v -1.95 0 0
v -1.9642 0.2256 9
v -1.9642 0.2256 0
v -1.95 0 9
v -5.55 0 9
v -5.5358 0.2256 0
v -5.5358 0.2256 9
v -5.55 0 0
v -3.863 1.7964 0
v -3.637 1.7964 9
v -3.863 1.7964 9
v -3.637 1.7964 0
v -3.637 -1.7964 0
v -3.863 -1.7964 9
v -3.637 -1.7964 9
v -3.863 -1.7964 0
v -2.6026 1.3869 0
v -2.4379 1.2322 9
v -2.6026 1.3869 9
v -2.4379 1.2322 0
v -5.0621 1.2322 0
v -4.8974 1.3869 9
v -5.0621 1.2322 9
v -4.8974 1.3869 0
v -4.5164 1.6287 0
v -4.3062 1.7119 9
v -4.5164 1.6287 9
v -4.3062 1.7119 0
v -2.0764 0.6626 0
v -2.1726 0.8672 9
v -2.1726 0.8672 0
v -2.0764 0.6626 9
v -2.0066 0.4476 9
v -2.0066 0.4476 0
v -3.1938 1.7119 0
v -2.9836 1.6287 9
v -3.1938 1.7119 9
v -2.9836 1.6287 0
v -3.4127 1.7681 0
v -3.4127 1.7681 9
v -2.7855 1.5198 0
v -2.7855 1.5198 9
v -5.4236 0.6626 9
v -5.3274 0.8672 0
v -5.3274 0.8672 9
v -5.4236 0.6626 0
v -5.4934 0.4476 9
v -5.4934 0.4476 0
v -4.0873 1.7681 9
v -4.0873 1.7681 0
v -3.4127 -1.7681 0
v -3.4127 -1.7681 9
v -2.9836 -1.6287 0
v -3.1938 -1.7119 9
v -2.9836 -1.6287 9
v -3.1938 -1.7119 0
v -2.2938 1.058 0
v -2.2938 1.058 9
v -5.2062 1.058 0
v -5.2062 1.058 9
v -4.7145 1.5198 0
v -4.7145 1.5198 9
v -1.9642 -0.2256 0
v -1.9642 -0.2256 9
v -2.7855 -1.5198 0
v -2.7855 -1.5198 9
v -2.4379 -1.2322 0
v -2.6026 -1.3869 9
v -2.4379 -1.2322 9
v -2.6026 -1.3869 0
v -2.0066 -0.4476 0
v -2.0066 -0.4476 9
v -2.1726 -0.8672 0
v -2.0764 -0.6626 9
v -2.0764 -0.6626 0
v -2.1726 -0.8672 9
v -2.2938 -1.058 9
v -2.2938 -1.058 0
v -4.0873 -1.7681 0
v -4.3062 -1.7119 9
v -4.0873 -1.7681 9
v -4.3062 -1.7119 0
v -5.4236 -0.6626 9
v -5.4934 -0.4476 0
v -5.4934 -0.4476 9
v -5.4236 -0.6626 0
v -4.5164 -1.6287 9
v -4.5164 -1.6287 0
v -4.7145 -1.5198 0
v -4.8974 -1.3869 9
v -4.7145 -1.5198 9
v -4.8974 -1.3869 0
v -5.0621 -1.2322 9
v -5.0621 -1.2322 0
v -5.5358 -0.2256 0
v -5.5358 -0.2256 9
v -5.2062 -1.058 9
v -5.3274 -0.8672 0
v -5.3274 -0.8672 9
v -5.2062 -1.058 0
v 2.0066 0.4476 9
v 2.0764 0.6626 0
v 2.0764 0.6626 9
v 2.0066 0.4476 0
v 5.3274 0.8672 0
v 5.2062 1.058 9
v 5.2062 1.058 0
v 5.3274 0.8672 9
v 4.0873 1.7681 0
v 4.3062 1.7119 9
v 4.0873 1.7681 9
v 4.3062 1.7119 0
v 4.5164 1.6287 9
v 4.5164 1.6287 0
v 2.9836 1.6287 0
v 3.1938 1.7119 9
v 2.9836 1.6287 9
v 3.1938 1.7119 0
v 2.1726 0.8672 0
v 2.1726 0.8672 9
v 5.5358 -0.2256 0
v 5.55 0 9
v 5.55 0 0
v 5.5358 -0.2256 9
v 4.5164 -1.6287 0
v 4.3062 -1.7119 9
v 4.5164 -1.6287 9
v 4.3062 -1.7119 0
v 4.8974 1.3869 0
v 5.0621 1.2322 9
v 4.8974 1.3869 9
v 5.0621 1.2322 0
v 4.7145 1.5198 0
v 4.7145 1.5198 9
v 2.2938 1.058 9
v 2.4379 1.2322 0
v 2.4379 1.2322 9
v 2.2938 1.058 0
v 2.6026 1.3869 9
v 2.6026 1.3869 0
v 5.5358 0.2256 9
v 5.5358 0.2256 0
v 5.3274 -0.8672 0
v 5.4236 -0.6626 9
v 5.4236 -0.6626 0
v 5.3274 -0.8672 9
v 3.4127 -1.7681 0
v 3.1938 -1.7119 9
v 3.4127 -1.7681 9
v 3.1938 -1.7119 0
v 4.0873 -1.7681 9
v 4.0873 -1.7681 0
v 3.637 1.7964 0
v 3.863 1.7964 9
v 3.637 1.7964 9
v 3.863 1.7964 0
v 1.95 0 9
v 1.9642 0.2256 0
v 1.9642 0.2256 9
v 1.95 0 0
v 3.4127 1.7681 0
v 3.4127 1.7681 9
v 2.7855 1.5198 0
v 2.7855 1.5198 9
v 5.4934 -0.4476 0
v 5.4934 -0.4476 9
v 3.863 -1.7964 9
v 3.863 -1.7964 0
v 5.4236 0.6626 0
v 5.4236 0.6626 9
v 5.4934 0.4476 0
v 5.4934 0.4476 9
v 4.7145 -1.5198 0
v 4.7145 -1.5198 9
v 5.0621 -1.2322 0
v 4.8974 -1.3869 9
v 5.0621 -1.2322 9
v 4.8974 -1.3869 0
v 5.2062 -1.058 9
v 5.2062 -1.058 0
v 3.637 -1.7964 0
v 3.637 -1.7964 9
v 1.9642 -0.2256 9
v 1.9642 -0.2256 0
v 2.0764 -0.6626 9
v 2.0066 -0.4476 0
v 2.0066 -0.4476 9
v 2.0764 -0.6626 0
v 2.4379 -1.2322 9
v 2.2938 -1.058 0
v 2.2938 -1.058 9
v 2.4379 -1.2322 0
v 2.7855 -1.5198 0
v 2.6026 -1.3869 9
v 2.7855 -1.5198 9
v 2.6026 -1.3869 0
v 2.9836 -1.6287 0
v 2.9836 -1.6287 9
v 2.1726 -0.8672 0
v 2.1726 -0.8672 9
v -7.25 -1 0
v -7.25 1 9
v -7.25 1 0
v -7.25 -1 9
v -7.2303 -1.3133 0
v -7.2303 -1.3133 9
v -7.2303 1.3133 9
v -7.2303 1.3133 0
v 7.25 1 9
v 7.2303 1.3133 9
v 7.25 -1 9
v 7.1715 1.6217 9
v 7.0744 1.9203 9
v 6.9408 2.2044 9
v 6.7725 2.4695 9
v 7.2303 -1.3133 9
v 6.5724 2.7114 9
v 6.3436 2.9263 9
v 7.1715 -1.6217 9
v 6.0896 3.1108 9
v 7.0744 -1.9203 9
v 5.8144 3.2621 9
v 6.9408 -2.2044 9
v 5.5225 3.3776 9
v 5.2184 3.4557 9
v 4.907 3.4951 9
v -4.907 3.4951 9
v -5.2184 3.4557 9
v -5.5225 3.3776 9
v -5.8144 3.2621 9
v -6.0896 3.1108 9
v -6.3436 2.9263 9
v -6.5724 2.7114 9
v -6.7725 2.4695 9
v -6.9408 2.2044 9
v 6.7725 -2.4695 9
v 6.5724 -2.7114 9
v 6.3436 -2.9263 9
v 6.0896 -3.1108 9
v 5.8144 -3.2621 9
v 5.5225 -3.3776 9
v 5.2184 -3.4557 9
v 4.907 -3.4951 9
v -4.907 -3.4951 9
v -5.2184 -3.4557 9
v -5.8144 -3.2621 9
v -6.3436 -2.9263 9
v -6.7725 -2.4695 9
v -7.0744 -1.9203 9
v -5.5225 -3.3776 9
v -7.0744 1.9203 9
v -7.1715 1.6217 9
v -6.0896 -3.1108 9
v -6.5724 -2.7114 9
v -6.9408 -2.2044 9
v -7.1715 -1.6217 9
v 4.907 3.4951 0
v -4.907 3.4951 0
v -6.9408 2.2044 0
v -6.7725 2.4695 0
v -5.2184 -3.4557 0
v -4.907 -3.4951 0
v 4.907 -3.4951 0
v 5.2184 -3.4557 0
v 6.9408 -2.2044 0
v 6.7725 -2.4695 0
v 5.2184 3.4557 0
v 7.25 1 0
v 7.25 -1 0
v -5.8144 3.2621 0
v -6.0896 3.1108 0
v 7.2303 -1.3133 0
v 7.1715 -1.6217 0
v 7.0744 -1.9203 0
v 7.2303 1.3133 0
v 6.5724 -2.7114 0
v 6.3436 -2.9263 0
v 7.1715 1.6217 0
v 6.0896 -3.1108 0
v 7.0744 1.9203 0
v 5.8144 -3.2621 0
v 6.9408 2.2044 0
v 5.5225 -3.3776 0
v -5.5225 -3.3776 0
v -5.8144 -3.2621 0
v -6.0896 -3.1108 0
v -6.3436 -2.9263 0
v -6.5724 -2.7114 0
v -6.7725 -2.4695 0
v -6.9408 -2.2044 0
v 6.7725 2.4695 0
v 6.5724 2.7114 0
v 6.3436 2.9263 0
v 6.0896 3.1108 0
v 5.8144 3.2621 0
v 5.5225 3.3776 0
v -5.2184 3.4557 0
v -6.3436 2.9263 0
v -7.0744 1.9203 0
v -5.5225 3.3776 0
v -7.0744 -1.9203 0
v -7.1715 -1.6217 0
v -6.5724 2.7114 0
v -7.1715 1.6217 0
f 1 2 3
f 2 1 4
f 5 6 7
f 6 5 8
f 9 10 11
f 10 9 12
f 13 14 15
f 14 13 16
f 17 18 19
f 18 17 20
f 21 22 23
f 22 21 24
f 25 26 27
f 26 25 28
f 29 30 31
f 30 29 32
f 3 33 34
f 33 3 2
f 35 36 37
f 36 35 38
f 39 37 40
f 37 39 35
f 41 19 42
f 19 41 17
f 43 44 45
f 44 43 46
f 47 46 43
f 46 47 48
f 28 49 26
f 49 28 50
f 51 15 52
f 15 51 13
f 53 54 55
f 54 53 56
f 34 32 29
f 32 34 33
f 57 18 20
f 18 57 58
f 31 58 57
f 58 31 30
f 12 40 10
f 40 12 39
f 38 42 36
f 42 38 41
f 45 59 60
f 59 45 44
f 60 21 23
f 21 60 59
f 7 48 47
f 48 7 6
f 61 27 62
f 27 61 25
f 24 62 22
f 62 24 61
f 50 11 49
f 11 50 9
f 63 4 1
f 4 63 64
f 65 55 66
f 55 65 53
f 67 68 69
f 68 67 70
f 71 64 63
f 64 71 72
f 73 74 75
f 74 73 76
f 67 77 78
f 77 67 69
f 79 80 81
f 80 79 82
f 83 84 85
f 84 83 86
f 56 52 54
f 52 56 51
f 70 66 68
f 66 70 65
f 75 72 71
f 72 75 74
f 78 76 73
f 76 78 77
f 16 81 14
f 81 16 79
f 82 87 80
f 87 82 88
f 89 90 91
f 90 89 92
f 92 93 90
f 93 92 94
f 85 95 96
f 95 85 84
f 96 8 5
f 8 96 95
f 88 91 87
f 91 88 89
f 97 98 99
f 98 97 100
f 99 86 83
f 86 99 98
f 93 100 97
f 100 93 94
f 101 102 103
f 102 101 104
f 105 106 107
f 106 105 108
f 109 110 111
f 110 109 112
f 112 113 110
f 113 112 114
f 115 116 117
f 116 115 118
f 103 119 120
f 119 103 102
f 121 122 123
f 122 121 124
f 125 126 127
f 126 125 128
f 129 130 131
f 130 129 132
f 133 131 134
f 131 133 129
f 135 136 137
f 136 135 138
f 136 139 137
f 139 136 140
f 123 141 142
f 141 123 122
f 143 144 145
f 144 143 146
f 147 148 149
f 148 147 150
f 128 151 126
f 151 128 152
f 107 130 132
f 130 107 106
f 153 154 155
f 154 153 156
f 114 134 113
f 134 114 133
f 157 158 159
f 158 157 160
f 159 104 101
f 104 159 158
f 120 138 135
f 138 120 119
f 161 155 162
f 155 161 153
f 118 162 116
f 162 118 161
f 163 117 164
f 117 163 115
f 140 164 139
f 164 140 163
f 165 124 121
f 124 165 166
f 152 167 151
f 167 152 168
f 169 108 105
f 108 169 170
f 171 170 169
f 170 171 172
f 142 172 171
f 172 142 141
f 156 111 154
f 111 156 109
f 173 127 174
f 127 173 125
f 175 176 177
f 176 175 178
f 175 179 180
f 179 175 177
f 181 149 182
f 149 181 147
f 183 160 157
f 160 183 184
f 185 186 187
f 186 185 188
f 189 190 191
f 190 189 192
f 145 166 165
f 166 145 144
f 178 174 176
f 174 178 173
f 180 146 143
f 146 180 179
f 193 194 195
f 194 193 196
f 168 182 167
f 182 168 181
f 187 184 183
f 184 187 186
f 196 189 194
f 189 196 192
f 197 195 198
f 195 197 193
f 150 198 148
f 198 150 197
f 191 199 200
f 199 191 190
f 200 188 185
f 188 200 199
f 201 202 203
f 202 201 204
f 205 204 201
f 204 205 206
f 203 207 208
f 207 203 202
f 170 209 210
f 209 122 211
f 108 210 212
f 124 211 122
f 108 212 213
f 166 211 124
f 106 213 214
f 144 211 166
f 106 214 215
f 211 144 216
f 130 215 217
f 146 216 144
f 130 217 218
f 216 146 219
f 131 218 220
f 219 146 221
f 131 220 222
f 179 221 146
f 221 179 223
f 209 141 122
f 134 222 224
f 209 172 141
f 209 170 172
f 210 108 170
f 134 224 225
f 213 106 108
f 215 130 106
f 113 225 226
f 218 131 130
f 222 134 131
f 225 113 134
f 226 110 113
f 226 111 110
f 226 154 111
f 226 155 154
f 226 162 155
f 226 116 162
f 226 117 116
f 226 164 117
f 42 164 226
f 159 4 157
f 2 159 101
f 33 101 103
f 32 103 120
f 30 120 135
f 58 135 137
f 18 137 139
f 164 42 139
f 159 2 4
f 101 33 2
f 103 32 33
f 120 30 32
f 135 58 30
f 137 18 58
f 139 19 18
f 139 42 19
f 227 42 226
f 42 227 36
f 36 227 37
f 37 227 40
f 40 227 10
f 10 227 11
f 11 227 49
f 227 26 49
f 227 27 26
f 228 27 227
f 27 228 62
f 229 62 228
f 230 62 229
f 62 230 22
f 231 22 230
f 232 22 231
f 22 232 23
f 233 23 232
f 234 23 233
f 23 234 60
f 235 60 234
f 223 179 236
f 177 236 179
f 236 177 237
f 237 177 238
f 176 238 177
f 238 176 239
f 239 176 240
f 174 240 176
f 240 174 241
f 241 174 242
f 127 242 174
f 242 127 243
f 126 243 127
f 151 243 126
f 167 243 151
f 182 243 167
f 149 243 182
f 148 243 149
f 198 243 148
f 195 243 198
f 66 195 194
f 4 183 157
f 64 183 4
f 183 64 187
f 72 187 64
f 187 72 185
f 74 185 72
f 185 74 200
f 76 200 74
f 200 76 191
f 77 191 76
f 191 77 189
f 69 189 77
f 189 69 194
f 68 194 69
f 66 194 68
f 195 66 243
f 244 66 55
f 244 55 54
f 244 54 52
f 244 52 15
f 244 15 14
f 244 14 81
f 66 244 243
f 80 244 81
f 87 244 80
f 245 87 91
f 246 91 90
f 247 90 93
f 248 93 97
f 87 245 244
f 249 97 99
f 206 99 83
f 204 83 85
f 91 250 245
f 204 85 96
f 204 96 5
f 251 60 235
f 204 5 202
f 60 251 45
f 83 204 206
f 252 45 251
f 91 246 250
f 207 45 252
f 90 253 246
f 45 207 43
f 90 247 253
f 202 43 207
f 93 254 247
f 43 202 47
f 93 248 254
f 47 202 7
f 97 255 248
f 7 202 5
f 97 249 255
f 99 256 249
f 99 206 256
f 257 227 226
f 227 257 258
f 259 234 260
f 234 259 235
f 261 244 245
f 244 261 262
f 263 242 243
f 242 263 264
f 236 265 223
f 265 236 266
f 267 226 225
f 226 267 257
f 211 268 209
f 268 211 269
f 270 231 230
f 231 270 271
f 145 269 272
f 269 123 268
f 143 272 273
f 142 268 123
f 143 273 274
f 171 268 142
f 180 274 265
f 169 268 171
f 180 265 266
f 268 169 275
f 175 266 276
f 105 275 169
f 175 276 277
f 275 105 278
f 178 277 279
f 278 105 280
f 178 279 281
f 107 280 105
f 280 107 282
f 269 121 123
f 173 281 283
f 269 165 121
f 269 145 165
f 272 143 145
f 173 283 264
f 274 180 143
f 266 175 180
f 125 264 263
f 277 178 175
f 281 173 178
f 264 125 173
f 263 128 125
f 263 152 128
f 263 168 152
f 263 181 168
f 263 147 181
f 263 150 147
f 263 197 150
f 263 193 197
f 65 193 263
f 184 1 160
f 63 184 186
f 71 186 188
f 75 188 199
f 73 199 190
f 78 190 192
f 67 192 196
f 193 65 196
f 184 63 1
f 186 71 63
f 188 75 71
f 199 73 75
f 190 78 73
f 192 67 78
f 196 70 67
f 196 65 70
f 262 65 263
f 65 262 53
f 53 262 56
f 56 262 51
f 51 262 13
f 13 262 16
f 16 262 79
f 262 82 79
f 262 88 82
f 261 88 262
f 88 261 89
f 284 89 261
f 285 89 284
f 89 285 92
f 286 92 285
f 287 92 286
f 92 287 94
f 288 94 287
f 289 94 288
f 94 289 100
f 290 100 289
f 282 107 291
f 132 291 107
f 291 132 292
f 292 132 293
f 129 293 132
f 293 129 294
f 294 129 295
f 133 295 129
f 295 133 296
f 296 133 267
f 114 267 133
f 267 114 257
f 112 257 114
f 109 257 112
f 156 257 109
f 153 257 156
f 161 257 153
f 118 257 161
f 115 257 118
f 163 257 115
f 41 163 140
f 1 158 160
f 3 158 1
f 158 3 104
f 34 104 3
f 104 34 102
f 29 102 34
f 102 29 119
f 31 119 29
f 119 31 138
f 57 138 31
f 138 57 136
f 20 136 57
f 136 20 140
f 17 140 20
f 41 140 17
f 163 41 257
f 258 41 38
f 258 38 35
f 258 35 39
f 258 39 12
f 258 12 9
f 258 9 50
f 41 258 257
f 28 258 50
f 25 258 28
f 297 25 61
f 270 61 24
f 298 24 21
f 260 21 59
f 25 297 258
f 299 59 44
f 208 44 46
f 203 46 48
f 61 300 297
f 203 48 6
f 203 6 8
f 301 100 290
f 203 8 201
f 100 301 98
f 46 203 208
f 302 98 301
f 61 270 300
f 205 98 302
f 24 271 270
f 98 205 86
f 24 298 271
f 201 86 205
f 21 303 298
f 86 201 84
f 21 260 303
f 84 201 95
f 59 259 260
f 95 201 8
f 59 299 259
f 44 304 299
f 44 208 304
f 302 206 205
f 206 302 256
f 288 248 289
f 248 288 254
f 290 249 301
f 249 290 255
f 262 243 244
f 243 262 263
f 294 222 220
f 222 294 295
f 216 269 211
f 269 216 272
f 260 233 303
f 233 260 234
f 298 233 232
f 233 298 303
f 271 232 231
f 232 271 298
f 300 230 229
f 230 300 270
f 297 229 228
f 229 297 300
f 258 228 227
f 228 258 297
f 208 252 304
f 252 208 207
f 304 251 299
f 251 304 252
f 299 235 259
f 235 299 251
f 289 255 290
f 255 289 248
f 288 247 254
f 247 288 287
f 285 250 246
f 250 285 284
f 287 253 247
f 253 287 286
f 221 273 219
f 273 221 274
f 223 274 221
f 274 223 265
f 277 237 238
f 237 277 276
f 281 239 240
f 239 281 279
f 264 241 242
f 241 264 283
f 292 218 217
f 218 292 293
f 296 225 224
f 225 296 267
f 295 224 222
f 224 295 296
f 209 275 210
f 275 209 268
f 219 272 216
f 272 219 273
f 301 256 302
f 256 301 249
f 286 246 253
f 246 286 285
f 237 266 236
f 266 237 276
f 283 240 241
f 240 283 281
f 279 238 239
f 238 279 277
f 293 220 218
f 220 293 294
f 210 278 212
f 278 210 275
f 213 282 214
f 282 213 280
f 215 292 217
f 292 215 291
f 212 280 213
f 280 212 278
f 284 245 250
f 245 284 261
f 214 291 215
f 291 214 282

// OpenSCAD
$fn = 50;


difference() {
	union() {
		translate(v = [0, 0, 0]) {
			rotate(a = [0, 0, 0]) {
				hull() {
					translate(v = [-4.7500000000, 1.0000000000, 0]) {
						rotate(a = [0, 0, 0]) {
							translate(v = [0, 0, 0]) {
								rotate(a = [0, 0, 0]) {
									cylinder(h = 9, r = 2.5000000000);
								}
							}
						}
					}
					translate(v = [4.7500000000, 1.0000000000, 0]) {
						rotate(a = [0, 0, 0]) {
							translate(v = [0, 0, 0]) {
								rotate(a = [0, 0, 0]) {
									cylinder(h = 9, r = 2.5000000000);
								}
							}
						}
					}
					translate(v = [-4.7500000000, -1.0000000000, 0]) {
						rotate(a = [0, 0, 0]) {
							translate(v = [0, 0, 0]) {
								rotate(a = [0, 0, 0]) {
									cylinder(h = 9, r = 2.5000000000);
								}
							}
						}
					}
					translate(v = [4.7500000000, -1.0000000000, 0]) {
						rotate(a = [0, 0, 0]) {
							translate(v = [0, 0, 0]) {
								rotate(a = [0, 0, 0]) {
									cylinder(h = 9, r = 2.5000000000);
								}
							}
						}
					}
				}
			}
		}
	}
	union() {
		translate(v = [-3.7500000000, 0.0000000000, 0]) {
			rotate(a = [0, 0, 0]) {
				translate(v = [0, 0, -50]) {
					rotate(a = [0, 0, 0]) {
						cylinder(h = 100, r = 1.8000000000);
					}
				}
			}
		}
		translate(v = [3.7500000000, 0.0000000000, 0]) {
			rotate(a = [0, 0, 0]) {
				translate(v = [0, 0, -50]) {
					rotate(a = [0, 0, 0]) {
						cylinder(h = 100, r = 1.8000000000);
					}
				}
			}
		}
	}
}
